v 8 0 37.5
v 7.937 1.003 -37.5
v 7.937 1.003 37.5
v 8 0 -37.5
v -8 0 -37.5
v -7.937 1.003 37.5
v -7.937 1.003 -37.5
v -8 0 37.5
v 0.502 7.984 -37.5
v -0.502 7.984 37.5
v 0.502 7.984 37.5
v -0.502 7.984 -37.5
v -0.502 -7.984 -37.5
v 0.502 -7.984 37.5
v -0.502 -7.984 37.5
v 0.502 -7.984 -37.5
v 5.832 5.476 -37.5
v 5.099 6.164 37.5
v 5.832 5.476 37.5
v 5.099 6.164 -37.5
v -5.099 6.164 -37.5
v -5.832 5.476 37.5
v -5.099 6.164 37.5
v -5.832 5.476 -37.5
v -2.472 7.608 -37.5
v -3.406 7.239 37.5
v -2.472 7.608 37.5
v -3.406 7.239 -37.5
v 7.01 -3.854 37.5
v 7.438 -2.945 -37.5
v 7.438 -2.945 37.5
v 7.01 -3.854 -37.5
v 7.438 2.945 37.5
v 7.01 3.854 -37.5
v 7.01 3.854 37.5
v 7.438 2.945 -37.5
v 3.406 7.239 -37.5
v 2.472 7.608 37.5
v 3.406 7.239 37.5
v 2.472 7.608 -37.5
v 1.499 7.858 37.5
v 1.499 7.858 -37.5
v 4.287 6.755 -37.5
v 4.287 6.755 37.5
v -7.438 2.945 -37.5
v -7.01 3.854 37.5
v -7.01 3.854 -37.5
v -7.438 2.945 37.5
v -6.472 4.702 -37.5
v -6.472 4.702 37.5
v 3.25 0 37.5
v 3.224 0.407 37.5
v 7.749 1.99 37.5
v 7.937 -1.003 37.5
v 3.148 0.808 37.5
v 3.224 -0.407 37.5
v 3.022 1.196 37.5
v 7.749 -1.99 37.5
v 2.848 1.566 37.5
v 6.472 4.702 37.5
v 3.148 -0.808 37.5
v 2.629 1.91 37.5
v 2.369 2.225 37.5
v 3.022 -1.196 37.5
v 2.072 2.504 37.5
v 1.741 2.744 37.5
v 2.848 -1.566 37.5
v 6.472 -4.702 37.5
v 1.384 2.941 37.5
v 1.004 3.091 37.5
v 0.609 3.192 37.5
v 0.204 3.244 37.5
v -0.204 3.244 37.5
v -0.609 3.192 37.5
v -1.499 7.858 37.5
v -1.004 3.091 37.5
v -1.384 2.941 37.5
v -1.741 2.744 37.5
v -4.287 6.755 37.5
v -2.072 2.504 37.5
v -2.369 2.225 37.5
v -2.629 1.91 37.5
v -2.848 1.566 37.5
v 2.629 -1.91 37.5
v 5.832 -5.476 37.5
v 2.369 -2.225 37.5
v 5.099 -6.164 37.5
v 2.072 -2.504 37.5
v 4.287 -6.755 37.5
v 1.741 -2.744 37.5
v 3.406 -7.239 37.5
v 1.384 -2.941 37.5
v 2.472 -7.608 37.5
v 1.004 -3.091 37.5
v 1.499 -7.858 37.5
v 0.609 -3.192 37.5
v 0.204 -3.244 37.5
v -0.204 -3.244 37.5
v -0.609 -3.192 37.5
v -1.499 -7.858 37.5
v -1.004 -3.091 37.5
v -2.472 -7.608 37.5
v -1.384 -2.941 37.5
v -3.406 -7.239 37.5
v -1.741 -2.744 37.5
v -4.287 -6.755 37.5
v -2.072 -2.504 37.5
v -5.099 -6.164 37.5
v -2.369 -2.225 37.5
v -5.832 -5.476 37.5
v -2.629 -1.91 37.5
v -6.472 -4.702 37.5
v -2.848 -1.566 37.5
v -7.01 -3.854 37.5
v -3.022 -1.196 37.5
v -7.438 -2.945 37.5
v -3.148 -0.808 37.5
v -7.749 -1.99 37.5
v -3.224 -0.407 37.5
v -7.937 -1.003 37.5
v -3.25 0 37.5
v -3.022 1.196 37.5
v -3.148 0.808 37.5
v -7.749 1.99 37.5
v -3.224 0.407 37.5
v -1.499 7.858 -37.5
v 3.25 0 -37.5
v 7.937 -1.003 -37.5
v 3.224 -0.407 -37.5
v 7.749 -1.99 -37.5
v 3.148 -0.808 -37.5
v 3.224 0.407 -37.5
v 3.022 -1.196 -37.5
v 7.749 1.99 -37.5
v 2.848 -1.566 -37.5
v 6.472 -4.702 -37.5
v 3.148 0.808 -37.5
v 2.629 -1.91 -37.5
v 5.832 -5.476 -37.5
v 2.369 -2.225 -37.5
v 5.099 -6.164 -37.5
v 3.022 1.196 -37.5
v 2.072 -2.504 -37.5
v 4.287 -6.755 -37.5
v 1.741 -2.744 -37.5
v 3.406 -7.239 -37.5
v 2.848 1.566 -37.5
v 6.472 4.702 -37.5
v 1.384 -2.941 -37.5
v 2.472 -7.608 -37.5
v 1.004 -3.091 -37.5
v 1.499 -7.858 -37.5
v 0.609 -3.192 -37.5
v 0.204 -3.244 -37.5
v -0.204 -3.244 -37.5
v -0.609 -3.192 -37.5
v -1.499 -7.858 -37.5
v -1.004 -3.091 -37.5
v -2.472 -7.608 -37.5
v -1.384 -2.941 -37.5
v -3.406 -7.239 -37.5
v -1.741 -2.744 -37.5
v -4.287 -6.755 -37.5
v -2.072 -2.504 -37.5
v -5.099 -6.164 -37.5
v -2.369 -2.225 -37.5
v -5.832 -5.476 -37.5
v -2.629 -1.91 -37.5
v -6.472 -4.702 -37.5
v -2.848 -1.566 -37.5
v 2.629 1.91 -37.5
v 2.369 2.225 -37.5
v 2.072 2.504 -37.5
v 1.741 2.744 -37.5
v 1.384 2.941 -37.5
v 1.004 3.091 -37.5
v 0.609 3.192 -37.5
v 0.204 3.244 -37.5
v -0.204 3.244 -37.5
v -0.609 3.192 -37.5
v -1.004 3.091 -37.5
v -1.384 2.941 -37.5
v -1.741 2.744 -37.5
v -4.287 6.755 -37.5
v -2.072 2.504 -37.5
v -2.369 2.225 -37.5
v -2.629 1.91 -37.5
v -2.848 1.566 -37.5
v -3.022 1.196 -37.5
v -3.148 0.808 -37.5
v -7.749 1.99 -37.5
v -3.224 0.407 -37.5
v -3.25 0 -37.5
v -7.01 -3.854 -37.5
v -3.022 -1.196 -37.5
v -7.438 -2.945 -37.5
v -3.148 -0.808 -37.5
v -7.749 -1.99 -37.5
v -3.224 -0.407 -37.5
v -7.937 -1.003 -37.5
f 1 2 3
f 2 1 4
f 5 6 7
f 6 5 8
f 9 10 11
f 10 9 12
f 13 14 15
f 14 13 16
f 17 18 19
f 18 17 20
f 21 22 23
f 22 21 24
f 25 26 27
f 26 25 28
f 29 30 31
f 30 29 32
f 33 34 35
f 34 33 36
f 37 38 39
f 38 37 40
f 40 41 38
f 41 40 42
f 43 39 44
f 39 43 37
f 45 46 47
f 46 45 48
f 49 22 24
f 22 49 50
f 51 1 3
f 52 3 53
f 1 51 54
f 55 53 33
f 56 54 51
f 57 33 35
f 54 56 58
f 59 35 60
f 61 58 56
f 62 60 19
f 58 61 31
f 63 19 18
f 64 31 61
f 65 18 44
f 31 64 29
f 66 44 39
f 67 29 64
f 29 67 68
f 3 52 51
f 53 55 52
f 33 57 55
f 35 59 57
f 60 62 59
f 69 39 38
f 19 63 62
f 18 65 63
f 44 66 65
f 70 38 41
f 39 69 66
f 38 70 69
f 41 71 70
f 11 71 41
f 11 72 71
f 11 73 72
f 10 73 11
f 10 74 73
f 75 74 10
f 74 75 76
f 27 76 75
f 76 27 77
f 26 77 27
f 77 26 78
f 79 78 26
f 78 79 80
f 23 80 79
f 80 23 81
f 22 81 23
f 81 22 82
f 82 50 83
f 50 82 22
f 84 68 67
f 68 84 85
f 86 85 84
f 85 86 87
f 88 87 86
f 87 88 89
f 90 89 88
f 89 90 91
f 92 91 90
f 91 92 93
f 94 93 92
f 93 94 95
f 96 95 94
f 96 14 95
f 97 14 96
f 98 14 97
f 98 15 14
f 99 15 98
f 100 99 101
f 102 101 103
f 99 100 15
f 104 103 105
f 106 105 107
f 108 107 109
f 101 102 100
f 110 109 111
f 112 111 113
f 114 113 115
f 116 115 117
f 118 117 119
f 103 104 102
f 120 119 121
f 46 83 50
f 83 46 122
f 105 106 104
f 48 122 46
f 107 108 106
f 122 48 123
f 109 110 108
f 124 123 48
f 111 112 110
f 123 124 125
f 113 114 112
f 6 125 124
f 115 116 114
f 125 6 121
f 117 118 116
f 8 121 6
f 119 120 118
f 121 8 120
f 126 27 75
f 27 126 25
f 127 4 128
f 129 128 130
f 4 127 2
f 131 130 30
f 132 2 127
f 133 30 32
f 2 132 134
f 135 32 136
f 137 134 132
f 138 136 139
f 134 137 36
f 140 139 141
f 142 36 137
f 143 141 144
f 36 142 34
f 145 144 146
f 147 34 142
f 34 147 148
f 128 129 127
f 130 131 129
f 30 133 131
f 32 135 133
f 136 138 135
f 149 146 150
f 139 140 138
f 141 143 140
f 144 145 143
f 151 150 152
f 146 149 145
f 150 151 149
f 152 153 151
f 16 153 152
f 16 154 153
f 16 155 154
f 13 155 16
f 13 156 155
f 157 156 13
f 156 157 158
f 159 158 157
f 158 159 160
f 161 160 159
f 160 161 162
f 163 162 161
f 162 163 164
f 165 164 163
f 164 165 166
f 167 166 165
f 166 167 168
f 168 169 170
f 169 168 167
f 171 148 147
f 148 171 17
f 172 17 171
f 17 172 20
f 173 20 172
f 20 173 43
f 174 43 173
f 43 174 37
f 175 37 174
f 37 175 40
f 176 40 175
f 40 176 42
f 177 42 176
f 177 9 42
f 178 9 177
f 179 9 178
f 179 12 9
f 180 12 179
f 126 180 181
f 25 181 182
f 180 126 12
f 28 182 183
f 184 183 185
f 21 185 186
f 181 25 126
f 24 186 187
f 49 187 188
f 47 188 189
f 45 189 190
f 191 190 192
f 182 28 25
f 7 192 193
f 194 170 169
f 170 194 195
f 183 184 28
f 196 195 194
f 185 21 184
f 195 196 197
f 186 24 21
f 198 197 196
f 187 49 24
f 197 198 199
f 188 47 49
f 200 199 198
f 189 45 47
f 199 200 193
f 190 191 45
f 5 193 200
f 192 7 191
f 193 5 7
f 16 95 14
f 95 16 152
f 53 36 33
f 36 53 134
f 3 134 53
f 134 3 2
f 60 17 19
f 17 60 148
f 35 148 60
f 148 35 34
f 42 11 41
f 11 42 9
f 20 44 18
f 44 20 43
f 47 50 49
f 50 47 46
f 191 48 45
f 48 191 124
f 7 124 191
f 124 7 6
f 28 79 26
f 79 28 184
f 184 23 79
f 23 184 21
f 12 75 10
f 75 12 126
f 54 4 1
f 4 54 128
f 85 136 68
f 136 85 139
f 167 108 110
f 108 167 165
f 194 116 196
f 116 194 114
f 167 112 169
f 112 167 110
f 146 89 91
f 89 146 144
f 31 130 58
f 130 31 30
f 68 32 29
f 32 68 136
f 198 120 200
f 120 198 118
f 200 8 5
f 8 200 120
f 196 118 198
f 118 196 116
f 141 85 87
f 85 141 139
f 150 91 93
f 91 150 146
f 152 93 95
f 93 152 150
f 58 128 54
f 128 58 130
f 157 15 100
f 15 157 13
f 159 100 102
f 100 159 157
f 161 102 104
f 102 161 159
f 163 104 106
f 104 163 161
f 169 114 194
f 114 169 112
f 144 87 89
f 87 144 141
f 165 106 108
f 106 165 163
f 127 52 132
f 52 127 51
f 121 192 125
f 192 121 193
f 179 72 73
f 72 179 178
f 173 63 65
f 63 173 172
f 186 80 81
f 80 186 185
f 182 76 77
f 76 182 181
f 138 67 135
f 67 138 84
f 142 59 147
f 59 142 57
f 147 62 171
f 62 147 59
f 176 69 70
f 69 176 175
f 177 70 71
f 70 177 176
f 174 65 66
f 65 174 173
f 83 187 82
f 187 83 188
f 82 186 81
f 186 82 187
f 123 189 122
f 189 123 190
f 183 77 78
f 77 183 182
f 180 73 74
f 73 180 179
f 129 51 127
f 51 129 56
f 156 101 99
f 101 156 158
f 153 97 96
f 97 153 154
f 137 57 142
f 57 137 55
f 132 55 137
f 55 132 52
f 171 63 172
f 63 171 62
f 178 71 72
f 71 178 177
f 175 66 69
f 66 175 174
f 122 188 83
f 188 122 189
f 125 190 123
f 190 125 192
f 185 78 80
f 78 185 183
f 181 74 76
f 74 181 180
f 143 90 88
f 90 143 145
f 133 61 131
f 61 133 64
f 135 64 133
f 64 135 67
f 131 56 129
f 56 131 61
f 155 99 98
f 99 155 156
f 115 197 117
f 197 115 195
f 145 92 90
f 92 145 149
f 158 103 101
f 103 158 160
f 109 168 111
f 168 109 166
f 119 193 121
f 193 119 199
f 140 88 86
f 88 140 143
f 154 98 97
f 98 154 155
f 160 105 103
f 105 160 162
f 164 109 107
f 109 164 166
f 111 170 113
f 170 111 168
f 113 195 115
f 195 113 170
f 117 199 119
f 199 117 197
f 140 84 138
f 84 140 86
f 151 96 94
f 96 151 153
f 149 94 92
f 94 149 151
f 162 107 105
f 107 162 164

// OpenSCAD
$fn = 50;


difference() {
	union() {
		translate(v = [0, 0, -37.5000000000]) {
			cylinder(h = 75, r = 8.0000000000);
		}
	}
	union() {
		translate(v = [0, 0, -100.0000000000]) {
			cylinder(h = 200, r = 3.2500000000);
		}
	}
}
